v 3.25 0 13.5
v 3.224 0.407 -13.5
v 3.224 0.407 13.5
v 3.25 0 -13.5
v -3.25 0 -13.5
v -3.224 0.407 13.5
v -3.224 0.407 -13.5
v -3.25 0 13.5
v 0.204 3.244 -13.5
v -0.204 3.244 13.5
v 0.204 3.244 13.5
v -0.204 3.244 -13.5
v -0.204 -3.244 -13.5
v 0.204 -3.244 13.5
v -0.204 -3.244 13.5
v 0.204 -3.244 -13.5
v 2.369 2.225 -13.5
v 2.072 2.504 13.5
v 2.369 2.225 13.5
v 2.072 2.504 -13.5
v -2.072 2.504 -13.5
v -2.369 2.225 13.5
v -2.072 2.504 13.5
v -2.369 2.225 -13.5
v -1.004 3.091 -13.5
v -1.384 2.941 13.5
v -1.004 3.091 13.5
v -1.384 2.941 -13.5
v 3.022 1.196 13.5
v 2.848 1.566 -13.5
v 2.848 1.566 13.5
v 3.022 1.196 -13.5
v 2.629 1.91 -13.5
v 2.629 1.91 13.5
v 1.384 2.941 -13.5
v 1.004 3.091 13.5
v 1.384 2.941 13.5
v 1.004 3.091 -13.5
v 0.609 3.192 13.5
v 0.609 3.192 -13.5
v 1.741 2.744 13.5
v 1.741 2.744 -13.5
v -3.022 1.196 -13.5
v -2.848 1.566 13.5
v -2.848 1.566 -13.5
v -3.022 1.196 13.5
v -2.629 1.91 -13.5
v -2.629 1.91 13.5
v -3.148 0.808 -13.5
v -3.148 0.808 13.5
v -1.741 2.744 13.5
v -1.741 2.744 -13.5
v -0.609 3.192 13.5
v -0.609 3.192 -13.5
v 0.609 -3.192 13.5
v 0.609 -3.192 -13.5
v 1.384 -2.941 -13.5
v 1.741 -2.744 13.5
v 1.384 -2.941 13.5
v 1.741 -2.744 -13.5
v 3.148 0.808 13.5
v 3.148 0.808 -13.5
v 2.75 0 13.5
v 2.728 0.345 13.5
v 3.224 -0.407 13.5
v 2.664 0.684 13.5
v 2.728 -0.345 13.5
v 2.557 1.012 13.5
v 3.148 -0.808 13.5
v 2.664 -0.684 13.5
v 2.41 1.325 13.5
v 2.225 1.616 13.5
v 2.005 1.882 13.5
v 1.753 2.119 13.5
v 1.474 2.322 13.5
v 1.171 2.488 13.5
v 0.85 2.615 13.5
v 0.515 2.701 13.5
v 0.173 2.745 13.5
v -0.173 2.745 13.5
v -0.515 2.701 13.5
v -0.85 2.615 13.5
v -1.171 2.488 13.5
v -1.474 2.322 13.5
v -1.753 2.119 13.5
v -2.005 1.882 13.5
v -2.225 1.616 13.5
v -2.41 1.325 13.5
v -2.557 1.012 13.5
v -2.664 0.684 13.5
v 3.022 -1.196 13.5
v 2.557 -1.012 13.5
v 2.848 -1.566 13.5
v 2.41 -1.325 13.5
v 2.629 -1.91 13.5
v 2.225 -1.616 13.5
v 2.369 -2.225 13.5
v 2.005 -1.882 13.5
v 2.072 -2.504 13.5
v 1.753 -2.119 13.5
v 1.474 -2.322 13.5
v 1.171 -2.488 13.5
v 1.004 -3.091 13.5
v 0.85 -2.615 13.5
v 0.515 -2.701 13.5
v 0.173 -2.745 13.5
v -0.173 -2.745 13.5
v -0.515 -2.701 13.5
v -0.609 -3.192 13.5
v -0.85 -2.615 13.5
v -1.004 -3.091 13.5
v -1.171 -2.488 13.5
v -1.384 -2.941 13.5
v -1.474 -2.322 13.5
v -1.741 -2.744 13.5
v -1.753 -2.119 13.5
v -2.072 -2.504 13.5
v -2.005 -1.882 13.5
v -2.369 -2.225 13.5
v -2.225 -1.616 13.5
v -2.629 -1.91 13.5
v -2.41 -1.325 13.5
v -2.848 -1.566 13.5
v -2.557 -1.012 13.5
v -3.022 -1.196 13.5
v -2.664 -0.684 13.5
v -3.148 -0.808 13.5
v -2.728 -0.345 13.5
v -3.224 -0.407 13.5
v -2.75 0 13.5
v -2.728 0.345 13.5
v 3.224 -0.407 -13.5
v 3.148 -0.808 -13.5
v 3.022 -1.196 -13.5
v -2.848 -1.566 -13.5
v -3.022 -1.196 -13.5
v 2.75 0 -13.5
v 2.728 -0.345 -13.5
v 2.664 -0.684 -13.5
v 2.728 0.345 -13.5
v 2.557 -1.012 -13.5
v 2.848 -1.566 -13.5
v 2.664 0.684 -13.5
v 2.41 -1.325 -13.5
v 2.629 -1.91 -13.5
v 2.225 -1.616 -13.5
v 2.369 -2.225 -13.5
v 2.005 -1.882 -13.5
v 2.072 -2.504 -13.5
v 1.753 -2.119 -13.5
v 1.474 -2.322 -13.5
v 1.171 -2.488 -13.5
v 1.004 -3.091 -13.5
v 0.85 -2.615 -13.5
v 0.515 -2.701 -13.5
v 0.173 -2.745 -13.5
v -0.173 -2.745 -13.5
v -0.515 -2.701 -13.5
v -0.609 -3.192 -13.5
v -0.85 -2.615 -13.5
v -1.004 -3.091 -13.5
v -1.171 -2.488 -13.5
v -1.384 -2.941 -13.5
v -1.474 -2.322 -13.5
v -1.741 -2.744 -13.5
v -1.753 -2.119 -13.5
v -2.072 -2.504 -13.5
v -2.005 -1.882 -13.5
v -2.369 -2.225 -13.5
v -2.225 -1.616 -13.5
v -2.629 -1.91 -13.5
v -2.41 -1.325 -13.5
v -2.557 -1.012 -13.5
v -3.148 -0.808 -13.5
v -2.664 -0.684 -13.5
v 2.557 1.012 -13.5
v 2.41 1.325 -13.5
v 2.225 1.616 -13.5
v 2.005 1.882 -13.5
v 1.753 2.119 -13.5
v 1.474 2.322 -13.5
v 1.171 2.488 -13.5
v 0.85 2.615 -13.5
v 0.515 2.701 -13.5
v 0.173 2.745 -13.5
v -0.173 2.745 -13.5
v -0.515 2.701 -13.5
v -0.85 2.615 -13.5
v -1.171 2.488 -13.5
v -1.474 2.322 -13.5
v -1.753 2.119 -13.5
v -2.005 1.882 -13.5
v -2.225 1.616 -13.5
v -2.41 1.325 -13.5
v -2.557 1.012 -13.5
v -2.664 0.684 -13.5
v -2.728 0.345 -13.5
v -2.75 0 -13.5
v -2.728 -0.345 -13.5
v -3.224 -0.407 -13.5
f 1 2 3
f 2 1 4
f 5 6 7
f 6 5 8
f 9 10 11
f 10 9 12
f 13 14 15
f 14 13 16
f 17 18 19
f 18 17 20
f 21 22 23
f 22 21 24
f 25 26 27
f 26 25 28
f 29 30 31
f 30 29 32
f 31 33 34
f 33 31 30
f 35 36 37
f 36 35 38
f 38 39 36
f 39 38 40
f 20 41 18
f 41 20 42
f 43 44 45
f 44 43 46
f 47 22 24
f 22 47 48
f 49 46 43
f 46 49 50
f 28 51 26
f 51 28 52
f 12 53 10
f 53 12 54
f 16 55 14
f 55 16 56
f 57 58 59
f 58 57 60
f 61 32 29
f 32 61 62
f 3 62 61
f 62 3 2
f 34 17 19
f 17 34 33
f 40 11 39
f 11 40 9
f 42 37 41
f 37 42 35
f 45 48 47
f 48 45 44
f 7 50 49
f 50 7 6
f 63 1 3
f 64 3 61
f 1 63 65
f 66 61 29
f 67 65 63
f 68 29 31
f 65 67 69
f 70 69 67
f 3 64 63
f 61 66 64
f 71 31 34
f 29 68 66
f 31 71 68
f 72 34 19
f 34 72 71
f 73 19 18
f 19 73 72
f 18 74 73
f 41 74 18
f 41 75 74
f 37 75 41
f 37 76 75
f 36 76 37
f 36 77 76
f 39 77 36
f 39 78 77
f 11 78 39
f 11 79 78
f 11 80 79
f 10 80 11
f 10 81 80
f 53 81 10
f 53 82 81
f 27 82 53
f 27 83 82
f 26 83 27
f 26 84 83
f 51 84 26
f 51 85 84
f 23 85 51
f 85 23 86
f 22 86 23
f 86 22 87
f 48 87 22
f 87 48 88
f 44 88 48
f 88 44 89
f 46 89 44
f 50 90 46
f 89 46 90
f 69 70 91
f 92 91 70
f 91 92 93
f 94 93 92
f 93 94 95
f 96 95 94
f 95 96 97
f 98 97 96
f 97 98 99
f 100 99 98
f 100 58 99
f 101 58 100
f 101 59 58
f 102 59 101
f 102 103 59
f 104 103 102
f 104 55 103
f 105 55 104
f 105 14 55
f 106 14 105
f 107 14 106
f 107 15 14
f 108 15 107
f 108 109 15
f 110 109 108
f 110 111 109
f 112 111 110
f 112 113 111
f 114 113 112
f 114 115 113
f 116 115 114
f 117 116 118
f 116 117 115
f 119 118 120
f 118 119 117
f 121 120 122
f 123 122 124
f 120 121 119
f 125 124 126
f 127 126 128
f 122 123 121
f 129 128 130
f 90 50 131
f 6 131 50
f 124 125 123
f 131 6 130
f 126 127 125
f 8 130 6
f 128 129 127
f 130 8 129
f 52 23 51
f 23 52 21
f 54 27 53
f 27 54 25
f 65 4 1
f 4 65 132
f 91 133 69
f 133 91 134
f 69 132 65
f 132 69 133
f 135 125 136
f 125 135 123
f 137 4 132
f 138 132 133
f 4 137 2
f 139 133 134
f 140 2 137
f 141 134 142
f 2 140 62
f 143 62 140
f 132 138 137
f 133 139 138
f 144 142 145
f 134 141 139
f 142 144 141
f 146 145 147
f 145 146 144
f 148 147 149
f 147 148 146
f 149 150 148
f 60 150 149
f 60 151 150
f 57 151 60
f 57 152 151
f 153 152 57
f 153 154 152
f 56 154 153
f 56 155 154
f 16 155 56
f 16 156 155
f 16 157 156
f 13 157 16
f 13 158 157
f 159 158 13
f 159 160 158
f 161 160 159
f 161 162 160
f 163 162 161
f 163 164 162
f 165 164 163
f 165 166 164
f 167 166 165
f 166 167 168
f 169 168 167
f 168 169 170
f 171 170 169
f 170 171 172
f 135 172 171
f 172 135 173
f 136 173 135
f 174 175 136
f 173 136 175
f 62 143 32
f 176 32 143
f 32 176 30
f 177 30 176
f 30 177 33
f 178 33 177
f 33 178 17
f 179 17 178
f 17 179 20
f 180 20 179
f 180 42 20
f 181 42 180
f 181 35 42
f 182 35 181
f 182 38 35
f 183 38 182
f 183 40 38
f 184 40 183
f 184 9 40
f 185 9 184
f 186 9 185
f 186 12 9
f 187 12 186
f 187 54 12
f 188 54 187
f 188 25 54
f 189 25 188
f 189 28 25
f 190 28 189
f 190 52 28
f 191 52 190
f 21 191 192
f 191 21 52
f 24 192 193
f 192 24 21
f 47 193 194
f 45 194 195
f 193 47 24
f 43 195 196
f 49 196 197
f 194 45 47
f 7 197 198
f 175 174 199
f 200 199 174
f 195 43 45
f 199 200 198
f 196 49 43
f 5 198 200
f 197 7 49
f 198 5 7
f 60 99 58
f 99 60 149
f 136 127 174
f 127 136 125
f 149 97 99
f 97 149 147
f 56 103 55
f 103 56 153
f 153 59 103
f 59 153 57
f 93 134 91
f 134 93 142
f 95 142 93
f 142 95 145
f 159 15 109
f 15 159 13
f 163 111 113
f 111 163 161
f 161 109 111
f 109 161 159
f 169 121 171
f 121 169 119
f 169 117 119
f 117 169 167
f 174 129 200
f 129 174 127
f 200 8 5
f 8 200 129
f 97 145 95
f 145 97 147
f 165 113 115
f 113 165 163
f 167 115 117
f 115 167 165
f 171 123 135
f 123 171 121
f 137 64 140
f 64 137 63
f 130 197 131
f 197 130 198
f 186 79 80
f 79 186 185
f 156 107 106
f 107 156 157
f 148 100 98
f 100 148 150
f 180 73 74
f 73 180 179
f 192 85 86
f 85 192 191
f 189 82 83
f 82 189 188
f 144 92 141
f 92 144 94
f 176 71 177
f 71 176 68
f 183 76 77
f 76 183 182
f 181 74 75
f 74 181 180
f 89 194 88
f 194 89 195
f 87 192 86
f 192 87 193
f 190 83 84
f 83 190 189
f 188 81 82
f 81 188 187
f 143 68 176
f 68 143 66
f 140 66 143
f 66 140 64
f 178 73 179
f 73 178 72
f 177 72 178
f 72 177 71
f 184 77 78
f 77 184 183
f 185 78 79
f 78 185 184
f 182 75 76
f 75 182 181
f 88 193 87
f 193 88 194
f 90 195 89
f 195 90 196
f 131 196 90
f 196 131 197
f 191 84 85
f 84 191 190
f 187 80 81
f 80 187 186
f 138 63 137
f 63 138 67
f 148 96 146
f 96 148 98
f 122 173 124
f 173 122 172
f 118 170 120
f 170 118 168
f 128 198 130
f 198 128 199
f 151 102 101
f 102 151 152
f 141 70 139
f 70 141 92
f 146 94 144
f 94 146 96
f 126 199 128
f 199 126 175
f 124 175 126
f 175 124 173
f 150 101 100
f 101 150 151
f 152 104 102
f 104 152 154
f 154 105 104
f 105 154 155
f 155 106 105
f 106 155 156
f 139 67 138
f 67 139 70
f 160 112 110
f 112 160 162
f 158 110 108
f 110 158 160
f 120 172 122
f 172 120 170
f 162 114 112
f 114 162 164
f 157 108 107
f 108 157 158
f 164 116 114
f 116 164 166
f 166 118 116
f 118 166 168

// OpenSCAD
$fn = 50;


difference() {
	union() {
		translate(v = [0, 0, -13.5000000000]) {
			cylinder(h = 27, r = 3.2500000000);
		}
	}
	union() {
		translate(v = [0, 0, -100.0000000000]) {
			cylinder(h = 200, r = 2.7500000000);
		}
	}
}
